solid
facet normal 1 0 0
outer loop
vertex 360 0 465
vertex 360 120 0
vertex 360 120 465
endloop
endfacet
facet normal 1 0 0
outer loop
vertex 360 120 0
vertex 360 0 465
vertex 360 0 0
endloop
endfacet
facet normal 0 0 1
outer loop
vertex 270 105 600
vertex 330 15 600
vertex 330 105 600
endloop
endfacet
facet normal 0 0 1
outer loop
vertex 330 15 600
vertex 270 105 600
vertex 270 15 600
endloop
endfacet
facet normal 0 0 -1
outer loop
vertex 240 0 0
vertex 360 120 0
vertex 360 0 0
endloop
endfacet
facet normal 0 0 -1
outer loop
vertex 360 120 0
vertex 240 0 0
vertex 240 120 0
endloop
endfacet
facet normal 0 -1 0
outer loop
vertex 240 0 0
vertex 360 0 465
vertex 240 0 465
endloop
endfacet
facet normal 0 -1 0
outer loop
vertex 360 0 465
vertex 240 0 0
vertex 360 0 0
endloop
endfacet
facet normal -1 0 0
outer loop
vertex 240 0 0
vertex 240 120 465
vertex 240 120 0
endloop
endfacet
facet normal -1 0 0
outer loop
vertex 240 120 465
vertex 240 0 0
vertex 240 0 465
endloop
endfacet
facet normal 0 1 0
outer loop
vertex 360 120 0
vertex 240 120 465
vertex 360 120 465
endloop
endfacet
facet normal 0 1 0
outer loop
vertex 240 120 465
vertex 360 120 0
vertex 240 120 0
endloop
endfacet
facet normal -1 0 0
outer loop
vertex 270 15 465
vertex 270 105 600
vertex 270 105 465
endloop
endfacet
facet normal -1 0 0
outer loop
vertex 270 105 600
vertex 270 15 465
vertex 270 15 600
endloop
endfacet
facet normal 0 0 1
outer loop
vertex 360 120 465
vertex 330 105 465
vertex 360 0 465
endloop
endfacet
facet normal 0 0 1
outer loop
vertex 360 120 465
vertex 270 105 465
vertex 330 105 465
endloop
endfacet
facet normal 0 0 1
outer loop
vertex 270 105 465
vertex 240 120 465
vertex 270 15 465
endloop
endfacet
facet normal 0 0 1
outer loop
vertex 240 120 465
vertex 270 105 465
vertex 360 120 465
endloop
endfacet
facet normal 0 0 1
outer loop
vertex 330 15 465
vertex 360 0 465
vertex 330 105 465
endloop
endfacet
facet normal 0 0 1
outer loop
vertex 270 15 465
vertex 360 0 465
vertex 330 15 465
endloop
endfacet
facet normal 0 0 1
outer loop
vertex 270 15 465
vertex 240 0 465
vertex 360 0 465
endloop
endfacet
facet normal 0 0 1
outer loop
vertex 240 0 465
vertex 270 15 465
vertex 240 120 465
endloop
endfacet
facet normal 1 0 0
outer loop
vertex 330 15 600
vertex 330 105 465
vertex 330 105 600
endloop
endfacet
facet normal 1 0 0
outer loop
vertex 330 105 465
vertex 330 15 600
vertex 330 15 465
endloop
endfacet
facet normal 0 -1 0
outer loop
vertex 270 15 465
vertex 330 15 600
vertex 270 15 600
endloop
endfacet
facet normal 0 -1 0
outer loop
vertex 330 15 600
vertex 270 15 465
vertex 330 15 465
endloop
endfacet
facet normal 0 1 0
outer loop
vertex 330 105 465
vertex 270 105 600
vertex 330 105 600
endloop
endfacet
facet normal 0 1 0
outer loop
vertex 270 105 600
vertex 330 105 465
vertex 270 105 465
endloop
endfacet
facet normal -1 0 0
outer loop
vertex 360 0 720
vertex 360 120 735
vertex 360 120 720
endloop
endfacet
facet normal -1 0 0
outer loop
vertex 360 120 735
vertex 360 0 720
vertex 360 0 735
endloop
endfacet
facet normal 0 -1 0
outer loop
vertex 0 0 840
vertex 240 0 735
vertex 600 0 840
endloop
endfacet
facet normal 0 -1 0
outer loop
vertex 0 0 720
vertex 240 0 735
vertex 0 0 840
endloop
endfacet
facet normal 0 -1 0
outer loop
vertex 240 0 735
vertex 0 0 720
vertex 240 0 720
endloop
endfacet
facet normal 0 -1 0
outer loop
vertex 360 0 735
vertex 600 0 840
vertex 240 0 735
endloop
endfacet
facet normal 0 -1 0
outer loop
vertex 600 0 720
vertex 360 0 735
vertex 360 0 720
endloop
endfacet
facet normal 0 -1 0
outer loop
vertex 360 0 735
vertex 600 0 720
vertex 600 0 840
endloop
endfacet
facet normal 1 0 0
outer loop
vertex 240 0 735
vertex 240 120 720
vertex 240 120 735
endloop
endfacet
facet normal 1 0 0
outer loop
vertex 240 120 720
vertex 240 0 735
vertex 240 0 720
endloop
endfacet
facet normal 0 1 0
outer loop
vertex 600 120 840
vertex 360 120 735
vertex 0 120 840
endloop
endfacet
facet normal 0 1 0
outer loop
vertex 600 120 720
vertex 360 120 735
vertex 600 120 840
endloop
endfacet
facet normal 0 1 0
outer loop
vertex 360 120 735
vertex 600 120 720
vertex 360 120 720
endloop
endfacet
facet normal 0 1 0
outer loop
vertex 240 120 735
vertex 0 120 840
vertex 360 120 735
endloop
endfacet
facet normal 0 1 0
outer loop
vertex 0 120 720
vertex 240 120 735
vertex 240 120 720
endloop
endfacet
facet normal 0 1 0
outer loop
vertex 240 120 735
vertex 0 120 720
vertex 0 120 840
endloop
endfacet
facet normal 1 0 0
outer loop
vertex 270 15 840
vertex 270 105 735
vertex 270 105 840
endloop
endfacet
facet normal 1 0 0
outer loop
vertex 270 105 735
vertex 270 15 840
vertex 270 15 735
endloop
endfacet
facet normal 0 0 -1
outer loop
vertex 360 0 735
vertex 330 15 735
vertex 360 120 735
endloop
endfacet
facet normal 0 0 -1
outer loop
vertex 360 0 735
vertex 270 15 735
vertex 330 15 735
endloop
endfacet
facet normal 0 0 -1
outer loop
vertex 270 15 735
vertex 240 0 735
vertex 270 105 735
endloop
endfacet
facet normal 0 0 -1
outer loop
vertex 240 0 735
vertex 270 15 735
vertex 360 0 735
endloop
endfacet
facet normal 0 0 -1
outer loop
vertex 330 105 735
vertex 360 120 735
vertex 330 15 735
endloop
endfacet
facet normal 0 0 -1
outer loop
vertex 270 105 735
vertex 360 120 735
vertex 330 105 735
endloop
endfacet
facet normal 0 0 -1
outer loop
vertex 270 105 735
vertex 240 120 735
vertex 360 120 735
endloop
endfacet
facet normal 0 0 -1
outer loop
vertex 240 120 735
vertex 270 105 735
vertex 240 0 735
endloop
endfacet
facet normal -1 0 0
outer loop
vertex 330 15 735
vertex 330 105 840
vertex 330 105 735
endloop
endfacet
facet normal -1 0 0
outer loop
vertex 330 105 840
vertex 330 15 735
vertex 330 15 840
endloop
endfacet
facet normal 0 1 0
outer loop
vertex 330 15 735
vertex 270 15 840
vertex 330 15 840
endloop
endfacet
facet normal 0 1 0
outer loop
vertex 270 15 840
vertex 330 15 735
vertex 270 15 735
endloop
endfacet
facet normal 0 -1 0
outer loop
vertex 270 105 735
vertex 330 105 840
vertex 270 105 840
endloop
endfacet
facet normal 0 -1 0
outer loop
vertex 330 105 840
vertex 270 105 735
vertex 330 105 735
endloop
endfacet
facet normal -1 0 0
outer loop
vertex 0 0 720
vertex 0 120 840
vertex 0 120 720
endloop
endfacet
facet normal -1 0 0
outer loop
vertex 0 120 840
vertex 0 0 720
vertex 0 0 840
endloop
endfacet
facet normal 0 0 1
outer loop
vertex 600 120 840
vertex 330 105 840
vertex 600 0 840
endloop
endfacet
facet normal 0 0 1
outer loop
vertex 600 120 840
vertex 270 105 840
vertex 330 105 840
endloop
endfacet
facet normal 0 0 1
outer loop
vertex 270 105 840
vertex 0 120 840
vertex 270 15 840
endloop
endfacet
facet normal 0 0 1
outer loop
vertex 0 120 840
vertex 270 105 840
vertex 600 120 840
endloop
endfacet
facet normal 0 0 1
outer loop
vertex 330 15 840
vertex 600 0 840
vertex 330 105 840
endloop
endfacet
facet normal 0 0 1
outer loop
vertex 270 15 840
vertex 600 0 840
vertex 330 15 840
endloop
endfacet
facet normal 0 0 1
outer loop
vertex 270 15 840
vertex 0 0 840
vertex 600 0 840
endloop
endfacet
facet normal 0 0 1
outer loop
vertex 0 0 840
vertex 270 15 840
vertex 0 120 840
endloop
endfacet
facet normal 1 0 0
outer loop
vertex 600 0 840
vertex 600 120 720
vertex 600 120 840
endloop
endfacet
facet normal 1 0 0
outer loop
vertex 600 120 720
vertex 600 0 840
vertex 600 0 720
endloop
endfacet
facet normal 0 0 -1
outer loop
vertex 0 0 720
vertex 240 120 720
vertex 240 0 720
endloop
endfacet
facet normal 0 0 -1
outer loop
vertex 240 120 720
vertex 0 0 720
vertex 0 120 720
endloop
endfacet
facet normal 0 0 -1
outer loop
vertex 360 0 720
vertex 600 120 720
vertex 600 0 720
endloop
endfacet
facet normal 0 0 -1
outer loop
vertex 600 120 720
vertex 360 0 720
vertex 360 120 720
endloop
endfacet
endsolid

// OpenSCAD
// file: common/board.scad
// board.scad

BOARD_DEFAULT_LENGTH = 600;
BOARD_DEFAULT_WIDTH = 120;
BOARD_DEFAULT_THICKNESS = 120;

function board_get_default_size()
    = [BOARD_DEFAULT_LENGTH, BOARD_DEFAULT_WIDTH, BOARD_DEFAULT_THICKNESS];

module board(size = board_get_default_size(), center = false)
{
    // size[0] is always with the grain
    // size[1] is against the grain
    // size[2] is the board thickness
    cube(size = size, center = center);
}
// main file
// ooire_hozo_sashi.scad

use <common/board.scad>

OVERRUN_RATIO = 1/4;
DADO_RATIO = 1/8;
TENON_WIDTH_RATIO = 1/2;

TENON_DEPTH_RATIO = 0.75;

module ooire_hozo_sashi_tenon(board_size = board_get_default_size())
{
    overrun = board_size[1] * OVERRUN_RATIO;
    dado = board_size[1] * DADO_RATIO;
    tenon_width = board_size[1] * TENON_WIDTH_RATIO;
    tenon_depth = board_size[2] * TENON_DEPTH_RATIO;

    cutout_size_a = [
            (board_size[2] - tenon_width)/2,
            board_size[1],
            board_size[2] + overrun - dado];

    cutout_size_b = [
            tenon_width,
            (board_size[2] - tenon_depth)/2,
            cutout_size_a[2]];

    offset_a1 = [
            0,
            0,
            board_size[0] - cutout_size_a[2]];

    offset_a2 = [
            cutout_size_a[0] + tenon_width,
            0,
            board_size[0] - cutout_size_a[2]];

    offset_b1 = [
            cutout_size_a[0],
            0,
            board_size[0] - cutout_size_b[2]];

    offset_b2 = [
            cutout_size_a[0],
            cutout_size_b[1] + tenon_depth,
            board_size[0] - cutout_size_b[2]];

    difference()
    {
        translate([0, 0, board_size[0]])
            rotate([0, 90, 0])
                board(board_size);

        translate(offset_a1)
            cube(cutout_size_a);

        translate(offset_a2)
            cube(cutout_size_a);

        translate(offset_b1)
            cube(cutout_size_b);

        translate(offset_b2)
            cube(cutout_size_b);
    }
}

module ooire_hozo_sashi_mortise(board_size = board_get_default_size())
{
    overrun = board_size[1] * OVERRUN_RATIO;

    offset_tenon = [
            board_size[0]/2 - board_size[1]/2,
            0,
            -board_size[0] + board_size[2] + overrun];

    difference()
    {
        board(board_size);

        translate(offset_tenon)
            ooire_hozo_sashi_tenon(board_size);
    }
}

module ooire_hozo_sashi_example(board_size = board_get_default_size())
{
    translate([board_size[0]/2 - board_size[1]/2, 0, 0])
        ooire_hozo_sashi_tenon(board_size);

    translate([0, 0, board_size[0] + board_size[1]])
        ooire_hozo_sashi_mortise(board_size);
}

ooire_hozo_sashi_example();
